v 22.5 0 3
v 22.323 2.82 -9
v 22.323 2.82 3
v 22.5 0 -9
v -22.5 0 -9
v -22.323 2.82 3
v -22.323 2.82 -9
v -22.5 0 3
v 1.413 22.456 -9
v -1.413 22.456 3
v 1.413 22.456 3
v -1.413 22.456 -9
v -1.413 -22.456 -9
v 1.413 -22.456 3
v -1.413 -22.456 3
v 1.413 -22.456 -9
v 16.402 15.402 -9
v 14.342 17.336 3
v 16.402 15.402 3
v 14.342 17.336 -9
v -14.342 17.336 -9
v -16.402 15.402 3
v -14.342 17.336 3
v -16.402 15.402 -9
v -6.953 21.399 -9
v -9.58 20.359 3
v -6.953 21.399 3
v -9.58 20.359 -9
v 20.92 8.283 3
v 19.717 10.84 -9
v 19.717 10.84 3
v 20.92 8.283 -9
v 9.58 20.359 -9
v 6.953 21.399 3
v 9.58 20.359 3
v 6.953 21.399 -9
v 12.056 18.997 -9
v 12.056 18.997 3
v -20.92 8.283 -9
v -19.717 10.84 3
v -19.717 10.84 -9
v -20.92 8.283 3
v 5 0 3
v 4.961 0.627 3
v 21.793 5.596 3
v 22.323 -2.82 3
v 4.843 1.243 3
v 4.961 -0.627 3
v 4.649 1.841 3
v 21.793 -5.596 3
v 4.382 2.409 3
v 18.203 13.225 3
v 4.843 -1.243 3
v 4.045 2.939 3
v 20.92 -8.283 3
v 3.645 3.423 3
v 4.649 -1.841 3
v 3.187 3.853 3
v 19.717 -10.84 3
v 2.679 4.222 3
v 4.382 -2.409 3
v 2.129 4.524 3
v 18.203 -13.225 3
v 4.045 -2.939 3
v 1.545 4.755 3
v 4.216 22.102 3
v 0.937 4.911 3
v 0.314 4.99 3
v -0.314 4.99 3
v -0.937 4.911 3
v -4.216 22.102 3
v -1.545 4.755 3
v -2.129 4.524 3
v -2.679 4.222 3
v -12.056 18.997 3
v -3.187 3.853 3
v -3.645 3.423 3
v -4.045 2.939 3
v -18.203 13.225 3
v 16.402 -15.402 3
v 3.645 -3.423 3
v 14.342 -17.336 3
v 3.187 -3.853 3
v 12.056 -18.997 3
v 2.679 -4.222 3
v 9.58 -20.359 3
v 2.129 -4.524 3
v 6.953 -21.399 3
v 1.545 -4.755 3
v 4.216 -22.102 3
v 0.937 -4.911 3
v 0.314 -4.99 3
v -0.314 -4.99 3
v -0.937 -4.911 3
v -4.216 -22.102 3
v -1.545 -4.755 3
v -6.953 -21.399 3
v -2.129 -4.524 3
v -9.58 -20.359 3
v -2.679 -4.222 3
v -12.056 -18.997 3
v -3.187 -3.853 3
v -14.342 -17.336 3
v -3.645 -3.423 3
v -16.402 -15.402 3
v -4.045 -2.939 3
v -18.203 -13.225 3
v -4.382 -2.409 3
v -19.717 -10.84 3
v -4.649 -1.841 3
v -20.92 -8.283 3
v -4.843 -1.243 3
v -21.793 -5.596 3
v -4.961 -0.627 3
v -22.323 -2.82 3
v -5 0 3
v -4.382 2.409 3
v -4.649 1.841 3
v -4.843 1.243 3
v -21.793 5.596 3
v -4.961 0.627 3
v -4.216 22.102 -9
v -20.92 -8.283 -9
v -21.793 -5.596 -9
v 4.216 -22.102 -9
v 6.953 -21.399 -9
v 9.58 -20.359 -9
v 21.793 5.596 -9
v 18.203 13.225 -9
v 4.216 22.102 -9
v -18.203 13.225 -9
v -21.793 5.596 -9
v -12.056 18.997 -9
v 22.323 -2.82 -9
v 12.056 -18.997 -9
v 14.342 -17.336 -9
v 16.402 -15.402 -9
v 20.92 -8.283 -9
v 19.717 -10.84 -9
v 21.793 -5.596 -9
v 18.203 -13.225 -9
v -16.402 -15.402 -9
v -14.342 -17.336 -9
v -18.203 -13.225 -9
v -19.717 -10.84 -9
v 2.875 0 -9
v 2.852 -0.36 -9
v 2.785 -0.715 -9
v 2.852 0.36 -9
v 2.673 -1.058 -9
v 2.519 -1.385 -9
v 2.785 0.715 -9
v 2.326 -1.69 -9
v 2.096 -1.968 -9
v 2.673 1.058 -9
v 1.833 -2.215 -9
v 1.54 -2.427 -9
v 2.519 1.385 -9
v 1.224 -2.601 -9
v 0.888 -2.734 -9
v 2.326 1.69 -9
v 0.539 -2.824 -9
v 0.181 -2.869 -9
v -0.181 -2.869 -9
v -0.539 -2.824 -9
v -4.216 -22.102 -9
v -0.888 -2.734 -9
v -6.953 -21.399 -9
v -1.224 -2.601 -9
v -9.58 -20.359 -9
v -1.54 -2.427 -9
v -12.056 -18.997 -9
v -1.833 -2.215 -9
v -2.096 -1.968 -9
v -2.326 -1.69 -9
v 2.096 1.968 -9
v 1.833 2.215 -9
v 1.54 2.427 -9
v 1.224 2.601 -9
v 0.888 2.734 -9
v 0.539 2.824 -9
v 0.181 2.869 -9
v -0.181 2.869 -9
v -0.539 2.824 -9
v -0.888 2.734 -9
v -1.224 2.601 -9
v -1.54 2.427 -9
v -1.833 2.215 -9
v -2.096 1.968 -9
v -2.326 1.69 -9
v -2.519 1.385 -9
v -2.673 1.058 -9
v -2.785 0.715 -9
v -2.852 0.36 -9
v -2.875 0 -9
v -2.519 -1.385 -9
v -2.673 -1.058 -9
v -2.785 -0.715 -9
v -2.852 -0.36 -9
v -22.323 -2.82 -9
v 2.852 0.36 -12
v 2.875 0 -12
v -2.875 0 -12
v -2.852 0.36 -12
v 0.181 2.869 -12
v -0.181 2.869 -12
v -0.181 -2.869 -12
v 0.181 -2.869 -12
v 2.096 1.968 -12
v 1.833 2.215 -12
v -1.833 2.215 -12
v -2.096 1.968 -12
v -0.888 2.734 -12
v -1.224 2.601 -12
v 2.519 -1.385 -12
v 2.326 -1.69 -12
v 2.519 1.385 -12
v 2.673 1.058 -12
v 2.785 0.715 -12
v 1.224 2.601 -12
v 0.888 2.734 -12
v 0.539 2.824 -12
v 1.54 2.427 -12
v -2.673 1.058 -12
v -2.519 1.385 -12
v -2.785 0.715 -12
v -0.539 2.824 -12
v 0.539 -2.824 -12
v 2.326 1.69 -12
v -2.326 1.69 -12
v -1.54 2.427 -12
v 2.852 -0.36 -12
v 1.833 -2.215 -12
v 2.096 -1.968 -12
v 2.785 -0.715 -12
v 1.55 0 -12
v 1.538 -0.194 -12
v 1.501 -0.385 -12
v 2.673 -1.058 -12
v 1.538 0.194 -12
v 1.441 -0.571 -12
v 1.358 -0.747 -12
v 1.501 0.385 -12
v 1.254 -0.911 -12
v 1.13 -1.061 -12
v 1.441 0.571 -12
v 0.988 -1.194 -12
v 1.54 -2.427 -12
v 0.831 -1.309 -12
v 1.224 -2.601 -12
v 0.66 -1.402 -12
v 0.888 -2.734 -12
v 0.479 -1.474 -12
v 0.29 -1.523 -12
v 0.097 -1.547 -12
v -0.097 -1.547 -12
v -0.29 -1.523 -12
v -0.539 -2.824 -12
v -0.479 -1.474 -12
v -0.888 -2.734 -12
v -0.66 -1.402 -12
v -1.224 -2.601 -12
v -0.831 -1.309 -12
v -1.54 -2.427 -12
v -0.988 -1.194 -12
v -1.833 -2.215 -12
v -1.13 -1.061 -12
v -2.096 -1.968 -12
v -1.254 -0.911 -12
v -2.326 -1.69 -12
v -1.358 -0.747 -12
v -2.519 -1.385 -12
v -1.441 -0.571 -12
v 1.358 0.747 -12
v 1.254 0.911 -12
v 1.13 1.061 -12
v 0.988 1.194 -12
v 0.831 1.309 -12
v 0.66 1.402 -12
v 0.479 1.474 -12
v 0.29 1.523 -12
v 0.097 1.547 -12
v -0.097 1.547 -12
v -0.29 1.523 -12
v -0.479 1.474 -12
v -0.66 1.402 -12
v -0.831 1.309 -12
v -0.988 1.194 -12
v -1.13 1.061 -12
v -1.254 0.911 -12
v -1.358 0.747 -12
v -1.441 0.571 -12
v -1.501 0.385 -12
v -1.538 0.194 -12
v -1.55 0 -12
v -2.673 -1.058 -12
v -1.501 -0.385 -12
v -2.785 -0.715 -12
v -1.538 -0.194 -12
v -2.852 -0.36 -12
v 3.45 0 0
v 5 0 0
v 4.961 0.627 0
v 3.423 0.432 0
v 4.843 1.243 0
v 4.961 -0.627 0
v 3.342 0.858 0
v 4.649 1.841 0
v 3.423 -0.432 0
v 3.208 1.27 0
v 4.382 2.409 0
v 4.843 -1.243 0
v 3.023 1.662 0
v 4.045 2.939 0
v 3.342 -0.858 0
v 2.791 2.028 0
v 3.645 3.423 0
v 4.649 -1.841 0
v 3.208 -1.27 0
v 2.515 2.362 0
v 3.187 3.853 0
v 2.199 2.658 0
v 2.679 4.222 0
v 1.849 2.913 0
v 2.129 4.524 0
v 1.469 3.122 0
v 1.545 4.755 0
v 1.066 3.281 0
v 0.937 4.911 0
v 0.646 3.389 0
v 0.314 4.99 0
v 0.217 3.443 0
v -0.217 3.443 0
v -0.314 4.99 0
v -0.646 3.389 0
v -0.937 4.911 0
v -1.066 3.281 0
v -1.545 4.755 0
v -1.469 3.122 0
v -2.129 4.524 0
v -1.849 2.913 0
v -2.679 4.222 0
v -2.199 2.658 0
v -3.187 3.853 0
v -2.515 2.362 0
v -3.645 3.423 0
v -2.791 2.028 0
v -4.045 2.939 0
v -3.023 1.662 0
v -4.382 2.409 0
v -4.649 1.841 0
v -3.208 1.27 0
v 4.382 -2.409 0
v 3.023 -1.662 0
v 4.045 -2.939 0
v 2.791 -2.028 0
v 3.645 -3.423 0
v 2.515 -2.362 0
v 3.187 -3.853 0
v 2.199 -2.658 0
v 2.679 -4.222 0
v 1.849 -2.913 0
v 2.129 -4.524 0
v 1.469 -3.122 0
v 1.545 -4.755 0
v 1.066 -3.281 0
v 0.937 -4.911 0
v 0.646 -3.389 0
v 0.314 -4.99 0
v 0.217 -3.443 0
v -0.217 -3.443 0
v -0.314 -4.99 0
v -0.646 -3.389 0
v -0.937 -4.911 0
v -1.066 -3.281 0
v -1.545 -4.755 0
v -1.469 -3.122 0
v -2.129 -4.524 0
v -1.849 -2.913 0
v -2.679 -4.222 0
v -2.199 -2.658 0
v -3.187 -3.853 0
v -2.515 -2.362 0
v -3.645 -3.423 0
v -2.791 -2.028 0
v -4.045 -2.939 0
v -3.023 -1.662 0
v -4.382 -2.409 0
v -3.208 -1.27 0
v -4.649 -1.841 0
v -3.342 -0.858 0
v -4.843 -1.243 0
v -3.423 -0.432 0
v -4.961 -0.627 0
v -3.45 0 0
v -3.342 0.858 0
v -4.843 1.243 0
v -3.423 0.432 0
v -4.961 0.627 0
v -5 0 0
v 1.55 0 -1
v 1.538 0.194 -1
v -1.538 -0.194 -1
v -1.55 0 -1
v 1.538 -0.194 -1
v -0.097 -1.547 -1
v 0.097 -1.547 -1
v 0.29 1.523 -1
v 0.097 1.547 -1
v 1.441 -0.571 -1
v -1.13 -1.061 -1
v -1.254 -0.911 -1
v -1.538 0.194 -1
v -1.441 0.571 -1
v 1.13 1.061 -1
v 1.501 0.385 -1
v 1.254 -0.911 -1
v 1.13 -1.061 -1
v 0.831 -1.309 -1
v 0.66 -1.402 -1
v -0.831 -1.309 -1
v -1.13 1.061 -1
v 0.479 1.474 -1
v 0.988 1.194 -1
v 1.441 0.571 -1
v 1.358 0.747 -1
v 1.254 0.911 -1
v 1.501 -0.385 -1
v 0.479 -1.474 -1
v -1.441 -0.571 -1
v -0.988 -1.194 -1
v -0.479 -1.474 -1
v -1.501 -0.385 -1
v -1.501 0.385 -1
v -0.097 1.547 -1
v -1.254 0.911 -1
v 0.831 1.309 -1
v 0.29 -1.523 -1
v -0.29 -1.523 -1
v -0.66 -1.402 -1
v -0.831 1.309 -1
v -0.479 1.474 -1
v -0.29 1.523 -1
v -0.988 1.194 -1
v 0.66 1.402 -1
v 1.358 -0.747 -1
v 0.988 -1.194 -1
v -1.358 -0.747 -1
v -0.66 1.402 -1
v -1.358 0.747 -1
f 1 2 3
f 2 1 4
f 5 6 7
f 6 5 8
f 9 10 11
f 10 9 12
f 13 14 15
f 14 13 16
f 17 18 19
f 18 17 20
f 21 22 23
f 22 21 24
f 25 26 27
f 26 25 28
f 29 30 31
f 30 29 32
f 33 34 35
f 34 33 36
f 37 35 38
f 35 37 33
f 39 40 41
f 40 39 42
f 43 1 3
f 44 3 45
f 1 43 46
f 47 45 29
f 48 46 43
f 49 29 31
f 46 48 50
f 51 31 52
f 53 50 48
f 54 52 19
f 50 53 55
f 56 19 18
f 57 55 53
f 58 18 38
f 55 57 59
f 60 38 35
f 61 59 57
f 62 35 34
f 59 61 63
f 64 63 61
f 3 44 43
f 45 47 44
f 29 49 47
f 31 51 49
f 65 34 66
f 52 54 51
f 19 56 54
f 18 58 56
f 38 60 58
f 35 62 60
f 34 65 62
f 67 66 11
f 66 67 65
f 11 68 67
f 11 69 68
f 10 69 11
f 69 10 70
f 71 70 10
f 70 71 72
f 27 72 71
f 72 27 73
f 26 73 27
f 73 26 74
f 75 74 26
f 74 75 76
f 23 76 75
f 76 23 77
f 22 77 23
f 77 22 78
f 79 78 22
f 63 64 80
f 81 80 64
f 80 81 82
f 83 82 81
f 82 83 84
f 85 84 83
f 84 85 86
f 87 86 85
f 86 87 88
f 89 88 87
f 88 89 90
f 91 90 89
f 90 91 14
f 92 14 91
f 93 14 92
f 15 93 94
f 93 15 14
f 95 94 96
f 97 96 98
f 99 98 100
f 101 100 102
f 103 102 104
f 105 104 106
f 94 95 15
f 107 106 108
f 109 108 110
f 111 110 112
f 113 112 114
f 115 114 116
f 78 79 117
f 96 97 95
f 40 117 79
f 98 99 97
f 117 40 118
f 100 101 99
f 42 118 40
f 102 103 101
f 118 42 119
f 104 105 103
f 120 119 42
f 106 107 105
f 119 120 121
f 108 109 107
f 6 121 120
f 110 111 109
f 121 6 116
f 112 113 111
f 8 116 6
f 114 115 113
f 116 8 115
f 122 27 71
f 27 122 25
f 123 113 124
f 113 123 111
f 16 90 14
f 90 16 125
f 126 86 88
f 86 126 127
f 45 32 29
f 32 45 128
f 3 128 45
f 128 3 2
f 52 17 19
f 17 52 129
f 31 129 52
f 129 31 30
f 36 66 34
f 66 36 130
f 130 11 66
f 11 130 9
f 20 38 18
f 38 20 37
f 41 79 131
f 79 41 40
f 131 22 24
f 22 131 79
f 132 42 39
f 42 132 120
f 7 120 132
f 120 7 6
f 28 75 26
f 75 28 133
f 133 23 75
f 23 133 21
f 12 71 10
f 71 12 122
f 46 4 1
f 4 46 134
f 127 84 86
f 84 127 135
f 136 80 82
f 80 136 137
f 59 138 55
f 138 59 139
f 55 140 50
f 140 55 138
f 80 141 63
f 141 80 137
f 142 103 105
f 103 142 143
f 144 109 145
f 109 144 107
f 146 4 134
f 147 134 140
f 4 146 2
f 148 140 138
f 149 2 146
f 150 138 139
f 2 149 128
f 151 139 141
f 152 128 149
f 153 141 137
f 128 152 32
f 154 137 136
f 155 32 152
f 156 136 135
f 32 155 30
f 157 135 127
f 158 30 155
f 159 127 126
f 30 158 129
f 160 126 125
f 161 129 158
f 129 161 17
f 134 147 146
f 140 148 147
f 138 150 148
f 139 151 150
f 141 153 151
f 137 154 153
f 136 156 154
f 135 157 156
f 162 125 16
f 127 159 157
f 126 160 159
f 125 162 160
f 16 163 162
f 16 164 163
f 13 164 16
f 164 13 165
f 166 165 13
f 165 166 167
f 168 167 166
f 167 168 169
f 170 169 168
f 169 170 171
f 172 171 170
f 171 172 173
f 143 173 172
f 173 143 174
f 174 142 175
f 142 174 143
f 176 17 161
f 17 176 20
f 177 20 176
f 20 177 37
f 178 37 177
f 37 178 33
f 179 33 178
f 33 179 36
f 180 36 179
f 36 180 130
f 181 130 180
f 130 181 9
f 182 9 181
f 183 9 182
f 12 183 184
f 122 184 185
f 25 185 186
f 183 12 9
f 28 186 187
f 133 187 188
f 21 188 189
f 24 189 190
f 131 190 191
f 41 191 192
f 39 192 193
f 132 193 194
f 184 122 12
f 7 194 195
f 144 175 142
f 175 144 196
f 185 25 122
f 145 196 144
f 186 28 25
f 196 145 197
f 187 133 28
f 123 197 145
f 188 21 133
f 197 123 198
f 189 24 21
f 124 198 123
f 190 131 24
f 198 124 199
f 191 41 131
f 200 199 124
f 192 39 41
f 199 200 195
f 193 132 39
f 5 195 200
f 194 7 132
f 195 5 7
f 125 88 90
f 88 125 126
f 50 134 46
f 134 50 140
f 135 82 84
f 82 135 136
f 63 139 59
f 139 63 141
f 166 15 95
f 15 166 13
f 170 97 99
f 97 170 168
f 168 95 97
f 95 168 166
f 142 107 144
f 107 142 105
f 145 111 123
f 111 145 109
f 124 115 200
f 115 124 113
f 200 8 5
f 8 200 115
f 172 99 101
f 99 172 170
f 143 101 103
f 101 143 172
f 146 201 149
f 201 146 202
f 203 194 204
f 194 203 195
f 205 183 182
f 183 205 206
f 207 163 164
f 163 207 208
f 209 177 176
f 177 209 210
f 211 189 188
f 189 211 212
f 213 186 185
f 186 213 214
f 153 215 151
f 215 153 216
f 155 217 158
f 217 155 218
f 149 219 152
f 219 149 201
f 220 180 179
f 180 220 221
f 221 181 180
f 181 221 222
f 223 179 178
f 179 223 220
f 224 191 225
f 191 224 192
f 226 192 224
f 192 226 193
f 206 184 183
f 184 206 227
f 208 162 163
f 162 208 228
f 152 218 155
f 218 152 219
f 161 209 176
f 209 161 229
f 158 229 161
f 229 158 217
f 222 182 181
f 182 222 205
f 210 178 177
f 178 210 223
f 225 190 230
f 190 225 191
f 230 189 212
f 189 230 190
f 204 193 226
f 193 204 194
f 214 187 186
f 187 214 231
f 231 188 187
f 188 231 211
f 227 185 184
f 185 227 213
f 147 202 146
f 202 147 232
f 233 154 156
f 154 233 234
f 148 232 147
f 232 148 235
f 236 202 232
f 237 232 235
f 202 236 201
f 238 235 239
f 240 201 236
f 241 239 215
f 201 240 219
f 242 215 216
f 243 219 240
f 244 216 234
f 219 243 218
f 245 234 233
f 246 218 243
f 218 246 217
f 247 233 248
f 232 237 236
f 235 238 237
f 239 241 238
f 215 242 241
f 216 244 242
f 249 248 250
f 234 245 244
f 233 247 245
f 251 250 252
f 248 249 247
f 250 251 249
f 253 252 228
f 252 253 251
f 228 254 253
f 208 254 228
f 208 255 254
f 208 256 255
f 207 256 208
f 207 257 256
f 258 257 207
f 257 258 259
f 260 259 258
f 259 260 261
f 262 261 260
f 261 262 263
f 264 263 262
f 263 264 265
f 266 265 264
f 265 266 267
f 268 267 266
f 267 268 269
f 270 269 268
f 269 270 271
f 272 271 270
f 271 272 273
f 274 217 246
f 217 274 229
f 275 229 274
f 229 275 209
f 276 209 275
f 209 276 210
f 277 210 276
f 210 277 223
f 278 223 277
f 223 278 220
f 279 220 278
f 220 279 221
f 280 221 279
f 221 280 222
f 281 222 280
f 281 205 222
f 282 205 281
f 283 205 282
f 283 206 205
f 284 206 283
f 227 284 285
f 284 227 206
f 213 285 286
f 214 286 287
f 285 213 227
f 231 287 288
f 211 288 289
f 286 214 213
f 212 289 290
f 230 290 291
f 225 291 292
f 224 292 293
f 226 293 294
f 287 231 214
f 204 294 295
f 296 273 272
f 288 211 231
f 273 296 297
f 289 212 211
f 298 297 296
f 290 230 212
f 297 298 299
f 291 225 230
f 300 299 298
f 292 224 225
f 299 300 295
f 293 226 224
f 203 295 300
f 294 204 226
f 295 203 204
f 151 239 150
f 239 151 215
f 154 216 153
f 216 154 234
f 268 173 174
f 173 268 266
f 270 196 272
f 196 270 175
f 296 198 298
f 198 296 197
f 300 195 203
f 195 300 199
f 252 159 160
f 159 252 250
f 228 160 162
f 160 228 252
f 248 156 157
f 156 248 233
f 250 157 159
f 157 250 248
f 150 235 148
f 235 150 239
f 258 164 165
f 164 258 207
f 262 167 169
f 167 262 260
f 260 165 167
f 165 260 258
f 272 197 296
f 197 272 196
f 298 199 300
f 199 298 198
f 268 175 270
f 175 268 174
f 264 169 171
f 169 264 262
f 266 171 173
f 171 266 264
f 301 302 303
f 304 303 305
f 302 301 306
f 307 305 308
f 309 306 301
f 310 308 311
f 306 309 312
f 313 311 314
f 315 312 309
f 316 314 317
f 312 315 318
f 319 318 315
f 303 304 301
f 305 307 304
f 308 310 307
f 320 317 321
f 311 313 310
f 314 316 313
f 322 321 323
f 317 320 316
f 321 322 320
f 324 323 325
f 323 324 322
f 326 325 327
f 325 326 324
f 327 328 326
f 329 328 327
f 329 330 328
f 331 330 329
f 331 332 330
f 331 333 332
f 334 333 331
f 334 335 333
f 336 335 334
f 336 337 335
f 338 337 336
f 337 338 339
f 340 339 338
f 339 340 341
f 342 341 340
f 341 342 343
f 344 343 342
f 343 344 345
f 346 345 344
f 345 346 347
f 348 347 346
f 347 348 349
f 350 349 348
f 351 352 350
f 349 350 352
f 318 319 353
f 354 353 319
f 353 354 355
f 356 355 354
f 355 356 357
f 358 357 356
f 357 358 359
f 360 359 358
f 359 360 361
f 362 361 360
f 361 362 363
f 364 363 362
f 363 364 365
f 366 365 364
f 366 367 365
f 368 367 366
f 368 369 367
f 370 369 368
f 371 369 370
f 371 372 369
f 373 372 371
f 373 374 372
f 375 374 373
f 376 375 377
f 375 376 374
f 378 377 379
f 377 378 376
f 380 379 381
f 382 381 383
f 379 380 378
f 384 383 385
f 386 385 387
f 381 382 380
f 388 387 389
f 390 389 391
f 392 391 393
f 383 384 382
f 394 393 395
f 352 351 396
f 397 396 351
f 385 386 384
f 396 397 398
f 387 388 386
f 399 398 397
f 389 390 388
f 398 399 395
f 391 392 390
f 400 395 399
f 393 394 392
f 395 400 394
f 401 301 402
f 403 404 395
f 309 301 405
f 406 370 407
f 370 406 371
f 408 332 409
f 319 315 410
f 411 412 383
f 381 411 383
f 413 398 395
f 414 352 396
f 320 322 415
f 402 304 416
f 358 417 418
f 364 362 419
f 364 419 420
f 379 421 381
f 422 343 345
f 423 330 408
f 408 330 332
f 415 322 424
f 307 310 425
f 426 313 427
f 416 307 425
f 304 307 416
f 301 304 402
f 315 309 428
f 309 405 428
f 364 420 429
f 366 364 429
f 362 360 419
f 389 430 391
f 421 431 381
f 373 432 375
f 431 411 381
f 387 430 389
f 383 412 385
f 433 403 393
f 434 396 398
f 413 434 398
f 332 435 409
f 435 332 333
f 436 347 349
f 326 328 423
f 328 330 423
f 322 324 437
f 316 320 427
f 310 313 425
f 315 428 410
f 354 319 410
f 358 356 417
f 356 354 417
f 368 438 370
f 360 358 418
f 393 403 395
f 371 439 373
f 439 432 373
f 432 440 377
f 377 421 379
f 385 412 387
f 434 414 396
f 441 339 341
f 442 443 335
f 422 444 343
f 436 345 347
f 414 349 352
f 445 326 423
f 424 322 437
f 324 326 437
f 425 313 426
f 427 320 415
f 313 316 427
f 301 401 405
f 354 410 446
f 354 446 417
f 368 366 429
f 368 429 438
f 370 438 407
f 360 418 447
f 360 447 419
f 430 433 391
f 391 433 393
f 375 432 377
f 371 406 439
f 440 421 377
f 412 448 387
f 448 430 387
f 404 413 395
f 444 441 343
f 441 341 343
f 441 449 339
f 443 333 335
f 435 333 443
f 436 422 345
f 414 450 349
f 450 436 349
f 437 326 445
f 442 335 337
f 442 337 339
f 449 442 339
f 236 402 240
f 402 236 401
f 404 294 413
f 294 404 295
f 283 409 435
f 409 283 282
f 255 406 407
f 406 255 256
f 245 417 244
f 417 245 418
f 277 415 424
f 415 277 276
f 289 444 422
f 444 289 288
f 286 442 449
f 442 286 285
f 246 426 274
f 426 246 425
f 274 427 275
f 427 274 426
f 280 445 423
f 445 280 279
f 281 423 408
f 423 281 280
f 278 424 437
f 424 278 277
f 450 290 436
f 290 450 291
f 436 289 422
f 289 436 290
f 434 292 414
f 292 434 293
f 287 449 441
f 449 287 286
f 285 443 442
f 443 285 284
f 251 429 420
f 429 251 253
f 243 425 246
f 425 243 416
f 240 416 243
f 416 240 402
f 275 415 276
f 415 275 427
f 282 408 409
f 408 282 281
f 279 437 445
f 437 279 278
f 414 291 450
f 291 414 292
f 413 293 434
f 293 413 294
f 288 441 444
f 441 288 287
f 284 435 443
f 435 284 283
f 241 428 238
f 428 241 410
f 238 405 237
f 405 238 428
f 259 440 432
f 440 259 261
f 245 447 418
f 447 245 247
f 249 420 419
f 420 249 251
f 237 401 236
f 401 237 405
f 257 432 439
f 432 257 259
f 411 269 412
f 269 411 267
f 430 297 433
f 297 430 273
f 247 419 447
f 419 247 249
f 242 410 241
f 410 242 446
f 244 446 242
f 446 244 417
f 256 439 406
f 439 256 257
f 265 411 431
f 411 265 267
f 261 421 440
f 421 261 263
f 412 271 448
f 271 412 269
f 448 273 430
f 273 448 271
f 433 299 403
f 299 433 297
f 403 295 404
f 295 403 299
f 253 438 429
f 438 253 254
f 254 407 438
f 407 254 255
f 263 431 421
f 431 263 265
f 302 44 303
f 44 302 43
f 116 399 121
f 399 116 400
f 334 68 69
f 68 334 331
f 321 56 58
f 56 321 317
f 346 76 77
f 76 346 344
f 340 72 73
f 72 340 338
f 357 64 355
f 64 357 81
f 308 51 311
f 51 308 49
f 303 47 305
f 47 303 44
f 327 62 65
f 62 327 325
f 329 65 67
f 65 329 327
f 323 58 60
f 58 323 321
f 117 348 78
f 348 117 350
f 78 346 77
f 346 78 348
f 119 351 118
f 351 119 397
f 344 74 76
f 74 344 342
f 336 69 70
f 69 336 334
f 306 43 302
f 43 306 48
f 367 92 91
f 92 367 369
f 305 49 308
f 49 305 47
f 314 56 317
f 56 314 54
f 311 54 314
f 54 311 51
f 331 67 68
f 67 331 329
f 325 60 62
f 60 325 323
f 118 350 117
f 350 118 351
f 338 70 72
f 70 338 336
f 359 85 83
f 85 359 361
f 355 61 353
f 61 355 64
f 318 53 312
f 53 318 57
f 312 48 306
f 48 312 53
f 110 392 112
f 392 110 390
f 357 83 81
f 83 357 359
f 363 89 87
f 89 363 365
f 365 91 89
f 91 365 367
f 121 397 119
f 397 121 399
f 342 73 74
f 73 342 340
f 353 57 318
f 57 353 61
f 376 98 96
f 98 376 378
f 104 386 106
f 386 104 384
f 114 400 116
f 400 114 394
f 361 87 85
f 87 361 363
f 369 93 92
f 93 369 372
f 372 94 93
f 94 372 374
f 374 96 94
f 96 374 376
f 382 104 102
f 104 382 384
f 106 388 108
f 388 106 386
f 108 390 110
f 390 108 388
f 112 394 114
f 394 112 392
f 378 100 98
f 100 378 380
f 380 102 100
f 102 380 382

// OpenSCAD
$fn = 50;


difference() {
	union() {
		translate(v = [0, 0, -9.0000000000]) {
			cylinder(h = 12, r = 22.5000000000);
		}
		#translate(v = [0, 0, -12.0000000000]) {
			cylinder(h = 12, r = 2.8750000000);
		}
	}
	union() {
		translate(v = [0, 0, 0]) {
			rotate(a = [0, 0, 0]) {
				difference() {
					union() {
						translate(v = [0, 0, -12.0000000000]) {
							cylinder(h = 12, r = 1.2500000000);
						}
						translate(v = [0, 0, -1.0000000000]) {
							cylinder(h = 1.0000000000, r1 = 1.5500000000, r2 = 3.4500000000);
						}
						translate(v = [0, 0, -12.0000000000]) {
							cylinder(h = 12, r = 1.5500000000);
						}
						translate(v = [0, 0, -12.0000000000]) {
							cylinder(h = 12, r = 1.2500000000);
						}
					}
					union();
				}
			}
		}
		#cylinder(h = 3, r = 5.0000000000);
	}
}
